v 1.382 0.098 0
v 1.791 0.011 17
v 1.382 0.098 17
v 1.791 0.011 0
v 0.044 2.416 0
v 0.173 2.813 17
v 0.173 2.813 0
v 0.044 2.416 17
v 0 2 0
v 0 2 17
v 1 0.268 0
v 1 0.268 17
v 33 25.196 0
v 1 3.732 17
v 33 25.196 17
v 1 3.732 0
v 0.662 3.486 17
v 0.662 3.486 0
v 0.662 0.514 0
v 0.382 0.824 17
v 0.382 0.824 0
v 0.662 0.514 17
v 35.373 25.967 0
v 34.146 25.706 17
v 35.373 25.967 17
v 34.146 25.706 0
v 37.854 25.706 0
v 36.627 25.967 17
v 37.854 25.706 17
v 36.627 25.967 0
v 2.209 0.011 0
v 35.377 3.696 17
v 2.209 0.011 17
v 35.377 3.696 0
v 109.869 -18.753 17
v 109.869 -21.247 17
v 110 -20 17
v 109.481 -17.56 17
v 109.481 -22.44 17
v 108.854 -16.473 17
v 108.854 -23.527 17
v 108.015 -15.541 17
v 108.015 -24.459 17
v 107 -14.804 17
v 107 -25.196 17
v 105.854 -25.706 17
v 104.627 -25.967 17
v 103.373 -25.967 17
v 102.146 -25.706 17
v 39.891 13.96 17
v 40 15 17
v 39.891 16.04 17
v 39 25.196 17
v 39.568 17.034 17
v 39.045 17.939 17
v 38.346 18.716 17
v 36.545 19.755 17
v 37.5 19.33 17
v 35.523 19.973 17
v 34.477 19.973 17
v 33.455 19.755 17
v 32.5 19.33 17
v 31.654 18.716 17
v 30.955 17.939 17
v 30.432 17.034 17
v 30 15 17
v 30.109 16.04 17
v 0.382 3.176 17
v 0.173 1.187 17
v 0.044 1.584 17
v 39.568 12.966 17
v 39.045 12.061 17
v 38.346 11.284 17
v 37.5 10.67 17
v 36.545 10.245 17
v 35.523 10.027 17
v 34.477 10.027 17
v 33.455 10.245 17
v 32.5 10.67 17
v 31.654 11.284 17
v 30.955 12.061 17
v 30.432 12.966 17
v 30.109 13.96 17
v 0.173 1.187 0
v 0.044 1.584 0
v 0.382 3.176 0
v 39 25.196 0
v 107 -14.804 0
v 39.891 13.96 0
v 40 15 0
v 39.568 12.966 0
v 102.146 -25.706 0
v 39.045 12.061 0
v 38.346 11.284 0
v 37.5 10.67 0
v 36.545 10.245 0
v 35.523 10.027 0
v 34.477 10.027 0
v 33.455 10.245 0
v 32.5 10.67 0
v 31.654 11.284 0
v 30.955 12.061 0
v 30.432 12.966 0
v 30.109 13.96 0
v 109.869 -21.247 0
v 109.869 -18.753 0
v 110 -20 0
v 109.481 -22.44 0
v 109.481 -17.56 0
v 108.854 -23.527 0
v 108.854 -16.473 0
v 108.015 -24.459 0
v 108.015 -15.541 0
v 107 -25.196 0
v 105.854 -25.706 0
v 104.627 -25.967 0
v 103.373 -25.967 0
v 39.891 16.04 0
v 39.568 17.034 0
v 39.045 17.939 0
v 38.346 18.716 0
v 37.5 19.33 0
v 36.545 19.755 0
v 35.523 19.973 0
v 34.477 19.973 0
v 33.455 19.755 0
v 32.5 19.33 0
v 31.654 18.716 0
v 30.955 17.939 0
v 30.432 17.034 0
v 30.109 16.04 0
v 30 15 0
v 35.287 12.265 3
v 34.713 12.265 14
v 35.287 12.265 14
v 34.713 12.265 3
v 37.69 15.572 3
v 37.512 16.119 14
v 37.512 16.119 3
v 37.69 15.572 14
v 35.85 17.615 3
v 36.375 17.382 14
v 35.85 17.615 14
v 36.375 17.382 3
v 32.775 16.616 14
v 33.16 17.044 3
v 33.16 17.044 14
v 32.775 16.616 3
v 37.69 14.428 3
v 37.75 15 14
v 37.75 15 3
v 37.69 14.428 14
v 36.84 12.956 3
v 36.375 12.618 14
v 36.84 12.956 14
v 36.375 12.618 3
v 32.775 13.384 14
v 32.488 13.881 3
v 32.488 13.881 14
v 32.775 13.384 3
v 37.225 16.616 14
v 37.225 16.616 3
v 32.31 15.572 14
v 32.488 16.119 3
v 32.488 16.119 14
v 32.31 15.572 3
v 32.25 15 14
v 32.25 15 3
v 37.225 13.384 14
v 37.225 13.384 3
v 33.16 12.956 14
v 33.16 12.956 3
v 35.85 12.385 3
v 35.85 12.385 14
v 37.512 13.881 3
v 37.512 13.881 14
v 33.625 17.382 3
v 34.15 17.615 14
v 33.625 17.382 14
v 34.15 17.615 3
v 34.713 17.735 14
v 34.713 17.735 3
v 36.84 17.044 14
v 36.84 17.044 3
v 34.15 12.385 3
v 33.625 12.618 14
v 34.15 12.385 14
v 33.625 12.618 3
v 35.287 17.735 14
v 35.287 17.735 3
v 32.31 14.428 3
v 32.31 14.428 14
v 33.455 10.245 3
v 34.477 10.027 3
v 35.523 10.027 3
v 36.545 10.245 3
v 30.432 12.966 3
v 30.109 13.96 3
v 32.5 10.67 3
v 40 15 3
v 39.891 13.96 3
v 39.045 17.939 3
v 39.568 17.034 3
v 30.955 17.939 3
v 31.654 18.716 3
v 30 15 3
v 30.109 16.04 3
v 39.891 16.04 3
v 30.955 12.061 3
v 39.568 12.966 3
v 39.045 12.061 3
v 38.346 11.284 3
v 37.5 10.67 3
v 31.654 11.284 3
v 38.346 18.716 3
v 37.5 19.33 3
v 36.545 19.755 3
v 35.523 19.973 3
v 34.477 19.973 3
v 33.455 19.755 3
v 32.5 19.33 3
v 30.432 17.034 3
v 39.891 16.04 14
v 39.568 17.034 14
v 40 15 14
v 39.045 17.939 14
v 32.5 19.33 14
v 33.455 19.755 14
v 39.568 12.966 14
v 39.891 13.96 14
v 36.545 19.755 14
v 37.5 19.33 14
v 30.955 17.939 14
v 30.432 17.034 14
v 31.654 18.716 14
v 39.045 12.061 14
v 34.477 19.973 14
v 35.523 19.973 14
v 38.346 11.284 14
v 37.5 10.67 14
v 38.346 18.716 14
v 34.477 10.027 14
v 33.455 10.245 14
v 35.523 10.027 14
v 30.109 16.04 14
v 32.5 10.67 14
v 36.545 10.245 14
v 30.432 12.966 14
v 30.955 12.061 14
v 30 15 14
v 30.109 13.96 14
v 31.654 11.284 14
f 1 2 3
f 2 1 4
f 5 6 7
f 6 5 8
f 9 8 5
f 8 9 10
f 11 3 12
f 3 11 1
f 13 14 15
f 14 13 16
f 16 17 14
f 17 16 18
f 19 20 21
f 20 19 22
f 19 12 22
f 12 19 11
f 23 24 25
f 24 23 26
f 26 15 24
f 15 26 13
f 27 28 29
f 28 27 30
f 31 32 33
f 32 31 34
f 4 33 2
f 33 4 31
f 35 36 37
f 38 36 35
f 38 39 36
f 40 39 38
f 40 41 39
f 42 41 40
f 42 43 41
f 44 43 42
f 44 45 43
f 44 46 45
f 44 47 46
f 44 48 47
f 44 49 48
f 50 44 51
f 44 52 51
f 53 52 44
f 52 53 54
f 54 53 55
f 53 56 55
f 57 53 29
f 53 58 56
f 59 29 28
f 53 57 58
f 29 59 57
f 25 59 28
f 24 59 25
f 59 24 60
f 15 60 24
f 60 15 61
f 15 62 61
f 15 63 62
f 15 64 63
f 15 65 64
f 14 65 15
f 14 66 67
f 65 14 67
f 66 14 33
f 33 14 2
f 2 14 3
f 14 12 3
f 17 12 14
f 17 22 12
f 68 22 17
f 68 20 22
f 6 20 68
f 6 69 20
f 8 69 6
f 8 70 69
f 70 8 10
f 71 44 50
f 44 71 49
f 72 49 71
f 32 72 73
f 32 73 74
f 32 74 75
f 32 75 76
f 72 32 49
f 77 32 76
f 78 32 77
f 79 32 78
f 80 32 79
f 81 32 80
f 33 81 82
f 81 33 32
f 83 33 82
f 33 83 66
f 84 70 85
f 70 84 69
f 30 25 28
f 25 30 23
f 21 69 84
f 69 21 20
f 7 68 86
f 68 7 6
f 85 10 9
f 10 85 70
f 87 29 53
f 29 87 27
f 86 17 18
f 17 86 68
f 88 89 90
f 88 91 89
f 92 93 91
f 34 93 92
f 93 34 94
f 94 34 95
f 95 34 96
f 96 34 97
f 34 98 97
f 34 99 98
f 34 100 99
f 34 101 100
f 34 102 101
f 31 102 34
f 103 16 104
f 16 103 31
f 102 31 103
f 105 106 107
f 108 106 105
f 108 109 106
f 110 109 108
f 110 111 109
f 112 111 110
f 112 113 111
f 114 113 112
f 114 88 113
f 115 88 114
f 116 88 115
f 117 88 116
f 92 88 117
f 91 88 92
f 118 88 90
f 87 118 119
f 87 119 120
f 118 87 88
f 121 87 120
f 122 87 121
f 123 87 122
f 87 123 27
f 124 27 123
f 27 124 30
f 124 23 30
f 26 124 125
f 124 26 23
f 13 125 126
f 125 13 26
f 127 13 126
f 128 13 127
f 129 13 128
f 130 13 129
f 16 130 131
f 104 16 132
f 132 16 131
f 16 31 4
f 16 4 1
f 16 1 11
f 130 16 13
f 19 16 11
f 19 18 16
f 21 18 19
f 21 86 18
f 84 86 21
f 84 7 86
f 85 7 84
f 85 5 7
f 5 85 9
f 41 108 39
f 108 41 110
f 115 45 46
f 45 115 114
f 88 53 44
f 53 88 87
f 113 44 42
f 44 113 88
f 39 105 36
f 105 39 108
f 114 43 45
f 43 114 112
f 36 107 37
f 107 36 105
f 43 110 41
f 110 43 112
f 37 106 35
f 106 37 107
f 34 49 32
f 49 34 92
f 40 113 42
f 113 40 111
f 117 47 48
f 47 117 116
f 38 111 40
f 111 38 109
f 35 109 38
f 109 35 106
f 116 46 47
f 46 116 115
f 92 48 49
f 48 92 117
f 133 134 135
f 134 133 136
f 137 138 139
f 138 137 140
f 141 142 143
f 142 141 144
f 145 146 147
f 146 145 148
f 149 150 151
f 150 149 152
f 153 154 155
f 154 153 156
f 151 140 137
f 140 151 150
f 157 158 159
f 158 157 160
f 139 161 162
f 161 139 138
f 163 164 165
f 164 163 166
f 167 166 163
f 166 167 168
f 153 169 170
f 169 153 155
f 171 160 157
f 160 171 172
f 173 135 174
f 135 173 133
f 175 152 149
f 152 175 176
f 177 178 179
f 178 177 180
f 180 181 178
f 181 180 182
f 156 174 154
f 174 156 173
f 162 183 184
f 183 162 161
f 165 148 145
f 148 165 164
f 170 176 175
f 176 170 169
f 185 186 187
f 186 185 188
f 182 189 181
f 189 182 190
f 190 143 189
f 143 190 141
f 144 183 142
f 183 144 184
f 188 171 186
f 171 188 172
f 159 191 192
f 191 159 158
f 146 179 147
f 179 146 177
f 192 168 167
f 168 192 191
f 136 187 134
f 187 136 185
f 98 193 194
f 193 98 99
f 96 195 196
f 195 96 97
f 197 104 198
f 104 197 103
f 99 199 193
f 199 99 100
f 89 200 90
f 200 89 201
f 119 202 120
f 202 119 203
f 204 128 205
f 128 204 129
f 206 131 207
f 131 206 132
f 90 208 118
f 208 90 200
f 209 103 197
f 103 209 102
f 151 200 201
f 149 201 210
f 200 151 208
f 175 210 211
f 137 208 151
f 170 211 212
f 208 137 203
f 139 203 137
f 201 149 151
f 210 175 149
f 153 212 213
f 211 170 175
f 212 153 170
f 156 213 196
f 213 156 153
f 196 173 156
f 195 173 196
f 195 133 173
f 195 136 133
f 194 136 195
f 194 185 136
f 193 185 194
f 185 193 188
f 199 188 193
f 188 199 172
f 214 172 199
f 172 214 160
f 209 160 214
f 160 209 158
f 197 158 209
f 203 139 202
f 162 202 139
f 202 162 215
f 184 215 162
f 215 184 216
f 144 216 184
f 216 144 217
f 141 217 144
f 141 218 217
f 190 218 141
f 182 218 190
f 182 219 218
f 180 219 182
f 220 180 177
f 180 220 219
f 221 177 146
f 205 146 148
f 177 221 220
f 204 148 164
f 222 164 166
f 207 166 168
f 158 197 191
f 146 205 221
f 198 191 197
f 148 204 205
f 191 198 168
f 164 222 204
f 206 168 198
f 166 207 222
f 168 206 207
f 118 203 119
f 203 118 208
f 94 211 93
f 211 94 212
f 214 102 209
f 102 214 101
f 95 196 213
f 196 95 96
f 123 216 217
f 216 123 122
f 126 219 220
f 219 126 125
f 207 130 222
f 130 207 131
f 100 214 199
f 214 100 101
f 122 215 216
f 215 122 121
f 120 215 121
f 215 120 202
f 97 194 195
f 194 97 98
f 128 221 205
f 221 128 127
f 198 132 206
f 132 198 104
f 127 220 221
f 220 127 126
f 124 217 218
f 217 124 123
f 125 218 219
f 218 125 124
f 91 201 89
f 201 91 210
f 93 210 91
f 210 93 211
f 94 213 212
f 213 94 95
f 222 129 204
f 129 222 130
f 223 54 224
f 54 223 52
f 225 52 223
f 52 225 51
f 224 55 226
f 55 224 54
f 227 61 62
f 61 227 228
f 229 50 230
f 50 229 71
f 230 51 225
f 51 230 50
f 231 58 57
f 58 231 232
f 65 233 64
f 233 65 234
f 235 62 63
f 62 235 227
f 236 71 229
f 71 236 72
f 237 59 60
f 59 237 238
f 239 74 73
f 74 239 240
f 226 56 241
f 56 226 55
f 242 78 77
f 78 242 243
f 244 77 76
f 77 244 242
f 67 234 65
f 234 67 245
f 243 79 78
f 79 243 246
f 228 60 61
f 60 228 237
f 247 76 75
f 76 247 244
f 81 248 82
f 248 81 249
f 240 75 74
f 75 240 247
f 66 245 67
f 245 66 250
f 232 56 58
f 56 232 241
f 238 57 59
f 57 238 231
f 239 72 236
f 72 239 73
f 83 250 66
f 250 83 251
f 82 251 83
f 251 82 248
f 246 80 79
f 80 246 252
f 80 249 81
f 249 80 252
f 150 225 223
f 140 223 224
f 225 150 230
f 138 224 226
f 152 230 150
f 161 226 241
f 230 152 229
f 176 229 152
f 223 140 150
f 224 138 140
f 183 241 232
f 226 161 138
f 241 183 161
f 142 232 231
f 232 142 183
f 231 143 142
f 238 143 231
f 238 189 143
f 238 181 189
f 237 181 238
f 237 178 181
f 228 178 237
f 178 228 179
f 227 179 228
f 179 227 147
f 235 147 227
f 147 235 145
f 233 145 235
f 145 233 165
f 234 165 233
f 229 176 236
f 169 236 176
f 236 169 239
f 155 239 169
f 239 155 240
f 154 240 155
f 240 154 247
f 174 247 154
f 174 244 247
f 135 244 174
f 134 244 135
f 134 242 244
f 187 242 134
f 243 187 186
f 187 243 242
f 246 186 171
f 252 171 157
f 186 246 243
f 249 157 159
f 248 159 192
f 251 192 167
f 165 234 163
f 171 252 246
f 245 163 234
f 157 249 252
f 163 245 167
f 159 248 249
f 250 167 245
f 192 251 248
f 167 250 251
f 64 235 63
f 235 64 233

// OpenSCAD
// packa proteco
// ph1 ... vyska packy
// dira pro rotaci
// zap ... hloubka zapusteni
// dd1 ... prumer diry
// dd2 ... prumer zapusteni
$fn=30;

ph1 = 17;
zap = 3;
dd1 = 5.5;
dd2 = 10;

module dira_pro_cep() {
  union () {
    cylinder(d=dd1, h=ph1);
    cylinder(d=dd2, h=zap);
    translate([0,0,ph1-zap]) { cylinder(d=dd2, h=zap); }; 
   };
}

module packa() {
  difference () {
    union() {  
    hull() {
      translate([2,2,0]) cylinder(r=2,h=ph1);  
      translate([26,17,0]) cylinder(r=2,h=ph1);  
      translate([56,8,0]) cylinder(r=2,h=ph1);  
      translate([36,20,0]) cylinder(r=6,h=ph1);  
    };
    hull() {
      translate([36,20,0]) cylinder(r=6,h=ph1);  
      translate([26,10,0]) cylinder(r=2,h=ph1);  
      translate([104,-20,0]) cylinder(r=6,h=ph1);  
      translate([100,-18,0]) cylinder(r=6,h=ph1);  
    //  translate([96,-16,0]) cylinder(r=6,h=ph1);  
    };
   };
    translate([35,15,0]) { dira_pro_cep(); }; 
};
}

// packa 
   packa();


//difference () {
//  linear_extrude(height = ph1, center = false) { 
//      union() {
//        polygon([[0,0],[40,0],[40,22]], paths=[[0,1,2]]);
//        difference() {
//          translate([70,-80,0]) difference() {
//             polygon([
//             circle(r=65);
//            };
//      union() {
//         polygon([[-30,0],[190,0],[190,-190],[-30,-190]], paths=[[0,1,2,3]]);
//         // zkraceni packy
//         difference() {
//           polygon([[120,60],[190,60],[190,-190],[75,-190]], paths=[[0,1,2,3]]);
//           translate([100,15,0]) circle(d=25);
//          };
//        };
//      };
//    };
//   }; 
//   union () {
//     translate([35,15,0]) { cylinder(d=dd1, h=ph1); };
//     translate([35,15,0]) { cylinder(d=dd2, h=zap); };
//     translate([35,15,ph1-zap]) { cylinder(d=dd2, h=zap); }; 
//    };
//   }; 
